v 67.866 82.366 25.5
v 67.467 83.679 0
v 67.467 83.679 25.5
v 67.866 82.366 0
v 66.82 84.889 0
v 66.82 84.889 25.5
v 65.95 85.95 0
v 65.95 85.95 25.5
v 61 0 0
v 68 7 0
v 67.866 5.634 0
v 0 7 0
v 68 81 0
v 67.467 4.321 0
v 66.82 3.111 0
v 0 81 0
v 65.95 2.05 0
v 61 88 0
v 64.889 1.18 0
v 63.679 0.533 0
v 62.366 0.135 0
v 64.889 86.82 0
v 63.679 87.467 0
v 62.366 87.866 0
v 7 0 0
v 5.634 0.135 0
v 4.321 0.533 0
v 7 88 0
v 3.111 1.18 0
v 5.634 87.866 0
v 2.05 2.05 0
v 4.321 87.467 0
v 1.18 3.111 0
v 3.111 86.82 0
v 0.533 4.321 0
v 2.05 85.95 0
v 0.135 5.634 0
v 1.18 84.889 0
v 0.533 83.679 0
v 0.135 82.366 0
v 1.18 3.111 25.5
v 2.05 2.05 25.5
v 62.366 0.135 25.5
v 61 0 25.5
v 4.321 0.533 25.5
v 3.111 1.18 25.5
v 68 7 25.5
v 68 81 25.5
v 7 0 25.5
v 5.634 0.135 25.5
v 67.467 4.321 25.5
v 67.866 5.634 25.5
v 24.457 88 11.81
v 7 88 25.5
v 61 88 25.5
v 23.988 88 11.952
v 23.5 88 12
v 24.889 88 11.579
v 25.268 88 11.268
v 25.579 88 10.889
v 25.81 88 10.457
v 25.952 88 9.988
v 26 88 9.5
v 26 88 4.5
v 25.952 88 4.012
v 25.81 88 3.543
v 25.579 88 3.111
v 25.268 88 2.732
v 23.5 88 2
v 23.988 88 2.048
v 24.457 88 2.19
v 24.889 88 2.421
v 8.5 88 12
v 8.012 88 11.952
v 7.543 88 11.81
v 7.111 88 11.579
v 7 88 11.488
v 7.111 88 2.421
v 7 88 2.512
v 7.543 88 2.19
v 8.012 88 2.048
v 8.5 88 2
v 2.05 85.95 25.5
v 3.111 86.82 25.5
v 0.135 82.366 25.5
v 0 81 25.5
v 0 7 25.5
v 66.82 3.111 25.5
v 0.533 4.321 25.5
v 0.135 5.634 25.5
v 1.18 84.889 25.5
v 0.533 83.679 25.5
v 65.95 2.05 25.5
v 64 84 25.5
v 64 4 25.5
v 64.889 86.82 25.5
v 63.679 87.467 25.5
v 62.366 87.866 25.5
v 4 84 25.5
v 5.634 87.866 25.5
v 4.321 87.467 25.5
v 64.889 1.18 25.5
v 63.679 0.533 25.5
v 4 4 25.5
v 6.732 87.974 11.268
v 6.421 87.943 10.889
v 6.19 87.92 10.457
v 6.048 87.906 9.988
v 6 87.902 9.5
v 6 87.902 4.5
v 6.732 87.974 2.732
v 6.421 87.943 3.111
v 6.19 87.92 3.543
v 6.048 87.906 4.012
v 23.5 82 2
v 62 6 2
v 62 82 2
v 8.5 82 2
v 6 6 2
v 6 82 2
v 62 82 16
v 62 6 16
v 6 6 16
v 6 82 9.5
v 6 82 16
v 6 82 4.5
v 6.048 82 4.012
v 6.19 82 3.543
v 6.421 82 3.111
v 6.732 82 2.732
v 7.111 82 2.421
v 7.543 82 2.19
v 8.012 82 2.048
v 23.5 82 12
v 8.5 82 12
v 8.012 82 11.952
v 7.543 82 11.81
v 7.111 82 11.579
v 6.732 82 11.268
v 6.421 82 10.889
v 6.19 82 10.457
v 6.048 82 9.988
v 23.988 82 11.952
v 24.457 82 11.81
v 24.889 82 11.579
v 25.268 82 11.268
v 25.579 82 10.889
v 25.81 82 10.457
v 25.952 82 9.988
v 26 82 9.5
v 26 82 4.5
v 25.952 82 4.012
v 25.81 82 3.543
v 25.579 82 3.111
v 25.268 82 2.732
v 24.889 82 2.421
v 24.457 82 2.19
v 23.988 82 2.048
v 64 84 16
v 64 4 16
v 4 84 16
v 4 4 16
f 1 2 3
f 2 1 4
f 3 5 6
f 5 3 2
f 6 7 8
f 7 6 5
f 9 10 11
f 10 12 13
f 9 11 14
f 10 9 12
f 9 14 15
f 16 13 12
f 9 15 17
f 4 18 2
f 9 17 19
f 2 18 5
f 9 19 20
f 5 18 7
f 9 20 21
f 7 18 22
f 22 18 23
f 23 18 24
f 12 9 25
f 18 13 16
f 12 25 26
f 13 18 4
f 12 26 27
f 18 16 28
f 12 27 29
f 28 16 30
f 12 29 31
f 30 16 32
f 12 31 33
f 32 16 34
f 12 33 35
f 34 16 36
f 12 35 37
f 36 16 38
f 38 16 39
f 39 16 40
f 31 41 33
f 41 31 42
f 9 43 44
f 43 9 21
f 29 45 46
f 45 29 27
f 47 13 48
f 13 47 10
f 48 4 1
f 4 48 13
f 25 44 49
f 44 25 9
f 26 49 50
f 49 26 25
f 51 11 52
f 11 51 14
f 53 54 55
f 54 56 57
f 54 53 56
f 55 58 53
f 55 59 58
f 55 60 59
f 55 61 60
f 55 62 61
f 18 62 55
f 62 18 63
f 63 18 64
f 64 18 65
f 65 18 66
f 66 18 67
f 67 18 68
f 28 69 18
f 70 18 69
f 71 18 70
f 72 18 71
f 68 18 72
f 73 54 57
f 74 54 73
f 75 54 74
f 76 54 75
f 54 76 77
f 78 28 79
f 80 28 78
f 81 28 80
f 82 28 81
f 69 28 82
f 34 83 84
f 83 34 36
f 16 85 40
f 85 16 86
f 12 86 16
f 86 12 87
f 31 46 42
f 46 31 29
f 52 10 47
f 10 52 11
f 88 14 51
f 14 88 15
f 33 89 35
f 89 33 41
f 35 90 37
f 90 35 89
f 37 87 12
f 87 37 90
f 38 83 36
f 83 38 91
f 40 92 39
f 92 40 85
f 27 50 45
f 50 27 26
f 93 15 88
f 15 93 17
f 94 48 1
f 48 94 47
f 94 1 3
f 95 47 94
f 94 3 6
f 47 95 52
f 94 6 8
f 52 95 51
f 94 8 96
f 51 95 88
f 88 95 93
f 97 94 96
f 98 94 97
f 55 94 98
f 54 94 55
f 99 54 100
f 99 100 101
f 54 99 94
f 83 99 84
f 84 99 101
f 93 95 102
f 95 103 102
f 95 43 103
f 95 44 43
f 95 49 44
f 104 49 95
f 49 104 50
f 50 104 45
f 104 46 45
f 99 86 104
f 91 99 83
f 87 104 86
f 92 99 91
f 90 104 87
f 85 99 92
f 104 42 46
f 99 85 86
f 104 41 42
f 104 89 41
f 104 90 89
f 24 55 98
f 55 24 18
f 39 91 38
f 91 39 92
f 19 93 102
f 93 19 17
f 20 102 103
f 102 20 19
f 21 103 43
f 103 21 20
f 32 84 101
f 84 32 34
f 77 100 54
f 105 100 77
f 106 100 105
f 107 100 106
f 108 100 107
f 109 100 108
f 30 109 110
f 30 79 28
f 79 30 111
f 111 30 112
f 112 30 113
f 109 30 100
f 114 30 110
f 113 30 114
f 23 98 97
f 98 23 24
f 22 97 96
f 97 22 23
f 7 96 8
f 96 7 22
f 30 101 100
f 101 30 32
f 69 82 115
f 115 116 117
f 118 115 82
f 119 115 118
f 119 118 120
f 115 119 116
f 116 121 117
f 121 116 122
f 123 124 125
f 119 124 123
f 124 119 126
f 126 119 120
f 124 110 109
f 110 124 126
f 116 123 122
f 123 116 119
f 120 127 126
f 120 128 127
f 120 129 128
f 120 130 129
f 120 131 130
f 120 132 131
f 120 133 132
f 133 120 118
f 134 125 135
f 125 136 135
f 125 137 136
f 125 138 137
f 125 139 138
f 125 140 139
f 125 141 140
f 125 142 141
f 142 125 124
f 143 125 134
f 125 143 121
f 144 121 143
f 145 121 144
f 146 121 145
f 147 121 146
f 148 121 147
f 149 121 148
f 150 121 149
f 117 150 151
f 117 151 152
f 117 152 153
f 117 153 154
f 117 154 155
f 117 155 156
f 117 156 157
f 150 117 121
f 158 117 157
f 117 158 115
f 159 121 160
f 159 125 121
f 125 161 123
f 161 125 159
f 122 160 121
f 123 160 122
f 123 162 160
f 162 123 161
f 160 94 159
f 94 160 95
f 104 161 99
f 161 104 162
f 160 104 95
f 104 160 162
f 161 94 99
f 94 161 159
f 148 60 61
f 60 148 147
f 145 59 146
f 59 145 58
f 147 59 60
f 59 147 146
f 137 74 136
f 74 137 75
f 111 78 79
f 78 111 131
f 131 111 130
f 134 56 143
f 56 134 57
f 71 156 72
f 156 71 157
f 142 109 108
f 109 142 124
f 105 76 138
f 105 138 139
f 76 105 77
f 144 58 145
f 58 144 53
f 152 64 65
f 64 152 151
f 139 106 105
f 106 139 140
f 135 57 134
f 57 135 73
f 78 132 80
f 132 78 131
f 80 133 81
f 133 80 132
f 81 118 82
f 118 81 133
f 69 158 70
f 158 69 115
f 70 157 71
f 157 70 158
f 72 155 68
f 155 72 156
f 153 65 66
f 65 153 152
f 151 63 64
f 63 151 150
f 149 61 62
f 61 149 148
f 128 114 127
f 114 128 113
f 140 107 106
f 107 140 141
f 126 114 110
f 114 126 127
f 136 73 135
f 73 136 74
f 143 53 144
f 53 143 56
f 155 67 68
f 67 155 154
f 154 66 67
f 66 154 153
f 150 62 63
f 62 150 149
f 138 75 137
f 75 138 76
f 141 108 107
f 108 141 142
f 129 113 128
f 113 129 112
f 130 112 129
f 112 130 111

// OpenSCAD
$fn = 32;

keyWidth = 20;
ledgeWidth = 2;
wallThickness = 4;
wallHeight = 9.5;
cornerRadius = 7;
wellDepth = 14;
baseThickness = 2;

holeWidth = 20;
holeHeight = 10;
holeRadius = 2.5;

module roundedRect(w, h, r) {
    translate([r, r, 0]) minkowski() {
        circle(r);
        square([w - r*2, h - r*2]);
    }
}

width = 3 * keyWidth + 2 * wallThickness;
length = 4 * keyWidth + 2 * wallThickness;
height = baseThickness + wellDepth + wallHeight;

difference() {
    // shell
    linear_extrude(0, 0, height)
        roundedRect(width, length, cornerRadius);
    // well
    translate([wallThickness + ledgeWidth, wallThickness + ledgeWidth, baseThickness])
        linear_extrude(0, 0, wellDepth + wallHeight + 1)
            square([3 * keyWidth - 2 * ledgeWidth, 4 * keyWidth - 2 * ledgeWidth]);
    // ledge
    translate([wallThickness, wallThickness, baseThickness + wellDepth])
        linear_extrude(0, 0, wallHeight + 1)
            square([3 * keyWidth, 4 * keyWidth]);
    // hole
    translate([wallThickness + ledgeWidth, wallThickness + ledgeWidth + length, baseThickness])
        rotate([90, 0, 0])
            linear_extrude(0, 0, length)
                roundedRect(holeWidth, holeHeight, holeRadius);
}
